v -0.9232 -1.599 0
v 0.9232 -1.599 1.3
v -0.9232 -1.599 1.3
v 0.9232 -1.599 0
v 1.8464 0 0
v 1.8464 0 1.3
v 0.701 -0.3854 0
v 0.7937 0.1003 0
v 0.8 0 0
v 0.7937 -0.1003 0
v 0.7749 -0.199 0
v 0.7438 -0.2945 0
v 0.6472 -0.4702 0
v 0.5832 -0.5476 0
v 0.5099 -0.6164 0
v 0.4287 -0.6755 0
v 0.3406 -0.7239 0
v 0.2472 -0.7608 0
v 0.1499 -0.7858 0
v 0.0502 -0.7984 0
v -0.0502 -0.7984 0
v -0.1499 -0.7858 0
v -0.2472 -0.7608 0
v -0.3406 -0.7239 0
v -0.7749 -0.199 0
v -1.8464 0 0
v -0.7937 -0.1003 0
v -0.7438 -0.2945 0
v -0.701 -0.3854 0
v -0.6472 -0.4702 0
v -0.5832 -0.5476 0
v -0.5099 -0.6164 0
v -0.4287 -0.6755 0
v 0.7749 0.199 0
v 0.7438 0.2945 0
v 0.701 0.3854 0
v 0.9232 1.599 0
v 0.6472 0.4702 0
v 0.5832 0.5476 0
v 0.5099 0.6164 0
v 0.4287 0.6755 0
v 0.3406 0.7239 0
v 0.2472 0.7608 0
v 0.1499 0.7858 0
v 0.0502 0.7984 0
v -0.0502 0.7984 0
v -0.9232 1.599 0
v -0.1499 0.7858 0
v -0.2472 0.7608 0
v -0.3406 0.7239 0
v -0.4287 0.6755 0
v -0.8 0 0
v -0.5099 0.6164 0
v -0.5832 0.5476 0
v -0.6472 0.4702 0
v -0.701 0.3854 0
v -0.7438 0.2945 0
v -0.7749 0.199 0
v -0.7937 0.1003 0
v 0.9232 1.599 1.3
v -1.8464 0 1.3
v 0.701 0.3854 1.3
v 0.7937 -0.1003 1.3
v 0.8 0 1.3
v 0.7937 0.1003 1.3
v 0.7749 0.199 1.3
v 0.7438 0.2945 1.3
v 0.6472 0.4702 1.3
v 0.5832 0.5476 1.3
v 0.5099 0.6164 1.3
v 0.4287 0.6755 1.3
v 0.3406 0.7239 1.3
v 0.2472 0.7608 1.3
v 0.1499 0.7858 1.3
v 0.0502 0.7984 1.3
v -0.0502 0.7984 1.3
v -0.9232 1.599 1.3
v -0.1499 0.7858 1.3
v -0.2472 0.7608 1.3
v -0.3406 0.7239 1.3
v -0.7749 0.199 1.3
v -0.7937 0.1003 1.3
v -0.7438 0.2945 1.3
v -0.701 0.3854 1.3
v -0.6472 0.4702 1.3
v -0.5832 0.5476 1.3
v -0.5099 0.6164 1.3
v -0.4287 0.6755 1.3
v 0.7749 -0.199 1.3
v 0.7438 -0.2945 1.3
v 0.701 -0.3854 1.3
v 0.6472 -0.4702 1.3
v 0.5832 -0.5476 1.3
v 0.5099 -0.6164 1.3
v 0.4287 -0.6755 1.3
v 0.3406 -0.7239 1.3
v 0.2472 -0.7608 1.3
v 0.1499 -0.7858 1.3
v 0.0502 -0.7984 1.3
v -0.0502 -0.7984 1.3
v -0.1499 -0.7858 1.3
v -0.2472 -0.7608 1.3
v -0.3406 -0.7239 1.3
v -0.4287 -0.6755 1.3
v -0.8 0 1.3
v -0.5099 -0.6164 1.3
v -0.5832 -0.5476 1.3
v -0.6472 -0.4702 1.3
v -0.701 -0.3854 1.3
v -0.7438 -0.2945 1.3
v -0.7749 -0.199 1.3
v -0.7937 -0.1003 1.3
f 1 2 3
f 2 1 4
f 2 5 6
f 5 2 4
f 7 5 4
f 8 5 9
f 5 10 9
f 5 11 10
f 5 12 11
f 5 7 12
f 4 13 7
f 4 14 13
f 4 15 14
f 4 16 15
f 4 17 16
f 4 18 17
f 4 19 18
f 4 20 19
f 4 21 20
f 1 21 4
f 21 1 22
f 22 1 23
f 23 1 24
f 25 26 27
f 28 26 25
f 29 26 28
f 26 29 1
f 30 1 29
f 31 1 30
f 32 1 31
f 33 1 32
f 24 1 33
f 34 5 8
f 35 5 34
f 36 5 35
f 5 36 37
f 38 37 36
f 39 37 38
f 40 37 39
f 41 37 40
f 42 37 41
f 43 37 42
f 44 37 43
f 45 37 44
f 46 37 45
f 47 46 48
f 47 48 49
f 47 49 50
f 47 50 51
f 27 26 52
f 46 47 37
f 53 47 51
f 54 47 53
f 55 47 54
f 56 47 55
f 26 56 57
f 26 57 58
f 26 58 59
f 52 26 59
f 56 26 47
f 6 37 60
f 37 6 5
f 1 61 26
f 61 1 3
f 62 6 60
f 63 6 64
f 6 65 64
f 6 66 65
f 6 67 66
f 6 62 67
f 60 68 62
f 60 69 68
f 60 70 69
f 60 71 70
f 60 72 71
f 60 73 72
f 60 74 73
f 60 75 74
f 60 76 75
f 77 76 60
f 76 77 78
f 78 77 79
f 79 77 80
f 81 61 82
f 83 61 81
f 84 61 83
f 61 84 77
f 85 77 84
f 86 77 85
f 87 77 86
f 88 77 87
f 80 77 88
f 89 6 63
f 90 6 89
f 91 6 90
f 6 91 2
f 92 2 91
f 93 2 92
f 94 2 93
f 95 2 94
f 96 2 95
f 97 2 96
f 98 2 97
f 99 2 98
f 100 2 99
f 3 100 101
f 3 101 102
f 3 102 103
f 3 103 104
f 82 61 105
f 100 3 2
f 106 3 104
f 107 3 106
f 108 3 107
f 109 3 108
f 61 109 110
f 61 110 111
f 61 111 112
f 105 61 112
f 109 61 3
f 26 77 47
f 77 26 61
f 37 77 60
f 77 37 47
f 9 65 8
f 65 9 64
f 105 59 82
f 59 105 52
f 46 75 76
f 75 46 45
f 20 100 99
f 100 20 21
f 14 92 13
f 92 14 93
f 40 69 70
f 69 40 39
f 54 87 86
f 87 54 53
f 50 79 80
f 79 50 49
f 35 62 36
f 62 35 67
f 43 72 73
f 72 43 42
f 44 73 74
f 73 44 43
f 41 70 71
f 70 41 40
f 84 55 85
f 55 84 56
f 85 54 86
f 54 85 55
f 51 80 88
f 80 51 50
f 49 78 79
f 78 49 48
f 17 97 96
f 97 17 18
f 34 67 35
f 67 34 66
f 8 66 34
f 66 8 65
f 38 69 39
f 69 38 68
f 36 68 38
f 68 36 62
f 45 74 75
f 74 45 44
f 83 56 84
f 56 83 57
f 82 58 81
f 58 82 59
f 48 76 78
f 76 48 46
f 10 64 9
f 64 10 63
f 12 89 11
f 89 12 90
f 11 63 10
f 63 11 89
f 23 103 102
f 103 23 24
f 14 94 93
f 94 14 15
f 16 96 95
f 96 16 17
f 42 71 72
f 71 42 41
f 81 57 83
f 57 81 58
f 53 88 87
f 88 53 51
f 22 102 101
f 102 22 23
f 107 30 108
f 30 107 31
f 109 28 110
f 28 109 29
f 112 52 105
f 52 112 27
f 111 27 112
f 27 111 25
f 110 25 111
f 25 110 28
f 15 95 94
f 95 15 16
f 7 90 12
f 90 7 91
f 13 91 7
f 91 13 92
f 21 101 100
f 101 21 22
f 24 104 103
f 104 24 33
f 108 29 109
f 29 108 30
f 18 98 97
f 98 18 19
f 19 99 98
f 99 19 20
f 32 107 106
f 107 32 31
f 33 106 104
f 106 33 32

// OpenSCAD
$fn = 50;


difference() {
	union() {
		translate(v = [0, 0, 0]) {
			rotate(a = [0, 0, 0]) {
				#translate(v = [0, 0, 0]) {
					rotate(a = [0, 0, 0]) {
						linear_extrude(height = 1.3000000000) {
							polygon(points = [[1.8464000000, 0.0000000000], [0.9232000000, 1.5990293055], [-0.9232000000, 1.5990293055], [-1.8464000000, 0.0000000000], [-0.9232000000, -1.5990293055], [0.9232000000, -1.5990293055]]);
						}
					}
				}
			}
		}
	}
	union() {
		translate(v = [0, 0, -10]) {
			rotate(a = [0, 0, 0]) {
				cylinder(h = 100, r = 0.8000000000);
			}
		}
	}
}
